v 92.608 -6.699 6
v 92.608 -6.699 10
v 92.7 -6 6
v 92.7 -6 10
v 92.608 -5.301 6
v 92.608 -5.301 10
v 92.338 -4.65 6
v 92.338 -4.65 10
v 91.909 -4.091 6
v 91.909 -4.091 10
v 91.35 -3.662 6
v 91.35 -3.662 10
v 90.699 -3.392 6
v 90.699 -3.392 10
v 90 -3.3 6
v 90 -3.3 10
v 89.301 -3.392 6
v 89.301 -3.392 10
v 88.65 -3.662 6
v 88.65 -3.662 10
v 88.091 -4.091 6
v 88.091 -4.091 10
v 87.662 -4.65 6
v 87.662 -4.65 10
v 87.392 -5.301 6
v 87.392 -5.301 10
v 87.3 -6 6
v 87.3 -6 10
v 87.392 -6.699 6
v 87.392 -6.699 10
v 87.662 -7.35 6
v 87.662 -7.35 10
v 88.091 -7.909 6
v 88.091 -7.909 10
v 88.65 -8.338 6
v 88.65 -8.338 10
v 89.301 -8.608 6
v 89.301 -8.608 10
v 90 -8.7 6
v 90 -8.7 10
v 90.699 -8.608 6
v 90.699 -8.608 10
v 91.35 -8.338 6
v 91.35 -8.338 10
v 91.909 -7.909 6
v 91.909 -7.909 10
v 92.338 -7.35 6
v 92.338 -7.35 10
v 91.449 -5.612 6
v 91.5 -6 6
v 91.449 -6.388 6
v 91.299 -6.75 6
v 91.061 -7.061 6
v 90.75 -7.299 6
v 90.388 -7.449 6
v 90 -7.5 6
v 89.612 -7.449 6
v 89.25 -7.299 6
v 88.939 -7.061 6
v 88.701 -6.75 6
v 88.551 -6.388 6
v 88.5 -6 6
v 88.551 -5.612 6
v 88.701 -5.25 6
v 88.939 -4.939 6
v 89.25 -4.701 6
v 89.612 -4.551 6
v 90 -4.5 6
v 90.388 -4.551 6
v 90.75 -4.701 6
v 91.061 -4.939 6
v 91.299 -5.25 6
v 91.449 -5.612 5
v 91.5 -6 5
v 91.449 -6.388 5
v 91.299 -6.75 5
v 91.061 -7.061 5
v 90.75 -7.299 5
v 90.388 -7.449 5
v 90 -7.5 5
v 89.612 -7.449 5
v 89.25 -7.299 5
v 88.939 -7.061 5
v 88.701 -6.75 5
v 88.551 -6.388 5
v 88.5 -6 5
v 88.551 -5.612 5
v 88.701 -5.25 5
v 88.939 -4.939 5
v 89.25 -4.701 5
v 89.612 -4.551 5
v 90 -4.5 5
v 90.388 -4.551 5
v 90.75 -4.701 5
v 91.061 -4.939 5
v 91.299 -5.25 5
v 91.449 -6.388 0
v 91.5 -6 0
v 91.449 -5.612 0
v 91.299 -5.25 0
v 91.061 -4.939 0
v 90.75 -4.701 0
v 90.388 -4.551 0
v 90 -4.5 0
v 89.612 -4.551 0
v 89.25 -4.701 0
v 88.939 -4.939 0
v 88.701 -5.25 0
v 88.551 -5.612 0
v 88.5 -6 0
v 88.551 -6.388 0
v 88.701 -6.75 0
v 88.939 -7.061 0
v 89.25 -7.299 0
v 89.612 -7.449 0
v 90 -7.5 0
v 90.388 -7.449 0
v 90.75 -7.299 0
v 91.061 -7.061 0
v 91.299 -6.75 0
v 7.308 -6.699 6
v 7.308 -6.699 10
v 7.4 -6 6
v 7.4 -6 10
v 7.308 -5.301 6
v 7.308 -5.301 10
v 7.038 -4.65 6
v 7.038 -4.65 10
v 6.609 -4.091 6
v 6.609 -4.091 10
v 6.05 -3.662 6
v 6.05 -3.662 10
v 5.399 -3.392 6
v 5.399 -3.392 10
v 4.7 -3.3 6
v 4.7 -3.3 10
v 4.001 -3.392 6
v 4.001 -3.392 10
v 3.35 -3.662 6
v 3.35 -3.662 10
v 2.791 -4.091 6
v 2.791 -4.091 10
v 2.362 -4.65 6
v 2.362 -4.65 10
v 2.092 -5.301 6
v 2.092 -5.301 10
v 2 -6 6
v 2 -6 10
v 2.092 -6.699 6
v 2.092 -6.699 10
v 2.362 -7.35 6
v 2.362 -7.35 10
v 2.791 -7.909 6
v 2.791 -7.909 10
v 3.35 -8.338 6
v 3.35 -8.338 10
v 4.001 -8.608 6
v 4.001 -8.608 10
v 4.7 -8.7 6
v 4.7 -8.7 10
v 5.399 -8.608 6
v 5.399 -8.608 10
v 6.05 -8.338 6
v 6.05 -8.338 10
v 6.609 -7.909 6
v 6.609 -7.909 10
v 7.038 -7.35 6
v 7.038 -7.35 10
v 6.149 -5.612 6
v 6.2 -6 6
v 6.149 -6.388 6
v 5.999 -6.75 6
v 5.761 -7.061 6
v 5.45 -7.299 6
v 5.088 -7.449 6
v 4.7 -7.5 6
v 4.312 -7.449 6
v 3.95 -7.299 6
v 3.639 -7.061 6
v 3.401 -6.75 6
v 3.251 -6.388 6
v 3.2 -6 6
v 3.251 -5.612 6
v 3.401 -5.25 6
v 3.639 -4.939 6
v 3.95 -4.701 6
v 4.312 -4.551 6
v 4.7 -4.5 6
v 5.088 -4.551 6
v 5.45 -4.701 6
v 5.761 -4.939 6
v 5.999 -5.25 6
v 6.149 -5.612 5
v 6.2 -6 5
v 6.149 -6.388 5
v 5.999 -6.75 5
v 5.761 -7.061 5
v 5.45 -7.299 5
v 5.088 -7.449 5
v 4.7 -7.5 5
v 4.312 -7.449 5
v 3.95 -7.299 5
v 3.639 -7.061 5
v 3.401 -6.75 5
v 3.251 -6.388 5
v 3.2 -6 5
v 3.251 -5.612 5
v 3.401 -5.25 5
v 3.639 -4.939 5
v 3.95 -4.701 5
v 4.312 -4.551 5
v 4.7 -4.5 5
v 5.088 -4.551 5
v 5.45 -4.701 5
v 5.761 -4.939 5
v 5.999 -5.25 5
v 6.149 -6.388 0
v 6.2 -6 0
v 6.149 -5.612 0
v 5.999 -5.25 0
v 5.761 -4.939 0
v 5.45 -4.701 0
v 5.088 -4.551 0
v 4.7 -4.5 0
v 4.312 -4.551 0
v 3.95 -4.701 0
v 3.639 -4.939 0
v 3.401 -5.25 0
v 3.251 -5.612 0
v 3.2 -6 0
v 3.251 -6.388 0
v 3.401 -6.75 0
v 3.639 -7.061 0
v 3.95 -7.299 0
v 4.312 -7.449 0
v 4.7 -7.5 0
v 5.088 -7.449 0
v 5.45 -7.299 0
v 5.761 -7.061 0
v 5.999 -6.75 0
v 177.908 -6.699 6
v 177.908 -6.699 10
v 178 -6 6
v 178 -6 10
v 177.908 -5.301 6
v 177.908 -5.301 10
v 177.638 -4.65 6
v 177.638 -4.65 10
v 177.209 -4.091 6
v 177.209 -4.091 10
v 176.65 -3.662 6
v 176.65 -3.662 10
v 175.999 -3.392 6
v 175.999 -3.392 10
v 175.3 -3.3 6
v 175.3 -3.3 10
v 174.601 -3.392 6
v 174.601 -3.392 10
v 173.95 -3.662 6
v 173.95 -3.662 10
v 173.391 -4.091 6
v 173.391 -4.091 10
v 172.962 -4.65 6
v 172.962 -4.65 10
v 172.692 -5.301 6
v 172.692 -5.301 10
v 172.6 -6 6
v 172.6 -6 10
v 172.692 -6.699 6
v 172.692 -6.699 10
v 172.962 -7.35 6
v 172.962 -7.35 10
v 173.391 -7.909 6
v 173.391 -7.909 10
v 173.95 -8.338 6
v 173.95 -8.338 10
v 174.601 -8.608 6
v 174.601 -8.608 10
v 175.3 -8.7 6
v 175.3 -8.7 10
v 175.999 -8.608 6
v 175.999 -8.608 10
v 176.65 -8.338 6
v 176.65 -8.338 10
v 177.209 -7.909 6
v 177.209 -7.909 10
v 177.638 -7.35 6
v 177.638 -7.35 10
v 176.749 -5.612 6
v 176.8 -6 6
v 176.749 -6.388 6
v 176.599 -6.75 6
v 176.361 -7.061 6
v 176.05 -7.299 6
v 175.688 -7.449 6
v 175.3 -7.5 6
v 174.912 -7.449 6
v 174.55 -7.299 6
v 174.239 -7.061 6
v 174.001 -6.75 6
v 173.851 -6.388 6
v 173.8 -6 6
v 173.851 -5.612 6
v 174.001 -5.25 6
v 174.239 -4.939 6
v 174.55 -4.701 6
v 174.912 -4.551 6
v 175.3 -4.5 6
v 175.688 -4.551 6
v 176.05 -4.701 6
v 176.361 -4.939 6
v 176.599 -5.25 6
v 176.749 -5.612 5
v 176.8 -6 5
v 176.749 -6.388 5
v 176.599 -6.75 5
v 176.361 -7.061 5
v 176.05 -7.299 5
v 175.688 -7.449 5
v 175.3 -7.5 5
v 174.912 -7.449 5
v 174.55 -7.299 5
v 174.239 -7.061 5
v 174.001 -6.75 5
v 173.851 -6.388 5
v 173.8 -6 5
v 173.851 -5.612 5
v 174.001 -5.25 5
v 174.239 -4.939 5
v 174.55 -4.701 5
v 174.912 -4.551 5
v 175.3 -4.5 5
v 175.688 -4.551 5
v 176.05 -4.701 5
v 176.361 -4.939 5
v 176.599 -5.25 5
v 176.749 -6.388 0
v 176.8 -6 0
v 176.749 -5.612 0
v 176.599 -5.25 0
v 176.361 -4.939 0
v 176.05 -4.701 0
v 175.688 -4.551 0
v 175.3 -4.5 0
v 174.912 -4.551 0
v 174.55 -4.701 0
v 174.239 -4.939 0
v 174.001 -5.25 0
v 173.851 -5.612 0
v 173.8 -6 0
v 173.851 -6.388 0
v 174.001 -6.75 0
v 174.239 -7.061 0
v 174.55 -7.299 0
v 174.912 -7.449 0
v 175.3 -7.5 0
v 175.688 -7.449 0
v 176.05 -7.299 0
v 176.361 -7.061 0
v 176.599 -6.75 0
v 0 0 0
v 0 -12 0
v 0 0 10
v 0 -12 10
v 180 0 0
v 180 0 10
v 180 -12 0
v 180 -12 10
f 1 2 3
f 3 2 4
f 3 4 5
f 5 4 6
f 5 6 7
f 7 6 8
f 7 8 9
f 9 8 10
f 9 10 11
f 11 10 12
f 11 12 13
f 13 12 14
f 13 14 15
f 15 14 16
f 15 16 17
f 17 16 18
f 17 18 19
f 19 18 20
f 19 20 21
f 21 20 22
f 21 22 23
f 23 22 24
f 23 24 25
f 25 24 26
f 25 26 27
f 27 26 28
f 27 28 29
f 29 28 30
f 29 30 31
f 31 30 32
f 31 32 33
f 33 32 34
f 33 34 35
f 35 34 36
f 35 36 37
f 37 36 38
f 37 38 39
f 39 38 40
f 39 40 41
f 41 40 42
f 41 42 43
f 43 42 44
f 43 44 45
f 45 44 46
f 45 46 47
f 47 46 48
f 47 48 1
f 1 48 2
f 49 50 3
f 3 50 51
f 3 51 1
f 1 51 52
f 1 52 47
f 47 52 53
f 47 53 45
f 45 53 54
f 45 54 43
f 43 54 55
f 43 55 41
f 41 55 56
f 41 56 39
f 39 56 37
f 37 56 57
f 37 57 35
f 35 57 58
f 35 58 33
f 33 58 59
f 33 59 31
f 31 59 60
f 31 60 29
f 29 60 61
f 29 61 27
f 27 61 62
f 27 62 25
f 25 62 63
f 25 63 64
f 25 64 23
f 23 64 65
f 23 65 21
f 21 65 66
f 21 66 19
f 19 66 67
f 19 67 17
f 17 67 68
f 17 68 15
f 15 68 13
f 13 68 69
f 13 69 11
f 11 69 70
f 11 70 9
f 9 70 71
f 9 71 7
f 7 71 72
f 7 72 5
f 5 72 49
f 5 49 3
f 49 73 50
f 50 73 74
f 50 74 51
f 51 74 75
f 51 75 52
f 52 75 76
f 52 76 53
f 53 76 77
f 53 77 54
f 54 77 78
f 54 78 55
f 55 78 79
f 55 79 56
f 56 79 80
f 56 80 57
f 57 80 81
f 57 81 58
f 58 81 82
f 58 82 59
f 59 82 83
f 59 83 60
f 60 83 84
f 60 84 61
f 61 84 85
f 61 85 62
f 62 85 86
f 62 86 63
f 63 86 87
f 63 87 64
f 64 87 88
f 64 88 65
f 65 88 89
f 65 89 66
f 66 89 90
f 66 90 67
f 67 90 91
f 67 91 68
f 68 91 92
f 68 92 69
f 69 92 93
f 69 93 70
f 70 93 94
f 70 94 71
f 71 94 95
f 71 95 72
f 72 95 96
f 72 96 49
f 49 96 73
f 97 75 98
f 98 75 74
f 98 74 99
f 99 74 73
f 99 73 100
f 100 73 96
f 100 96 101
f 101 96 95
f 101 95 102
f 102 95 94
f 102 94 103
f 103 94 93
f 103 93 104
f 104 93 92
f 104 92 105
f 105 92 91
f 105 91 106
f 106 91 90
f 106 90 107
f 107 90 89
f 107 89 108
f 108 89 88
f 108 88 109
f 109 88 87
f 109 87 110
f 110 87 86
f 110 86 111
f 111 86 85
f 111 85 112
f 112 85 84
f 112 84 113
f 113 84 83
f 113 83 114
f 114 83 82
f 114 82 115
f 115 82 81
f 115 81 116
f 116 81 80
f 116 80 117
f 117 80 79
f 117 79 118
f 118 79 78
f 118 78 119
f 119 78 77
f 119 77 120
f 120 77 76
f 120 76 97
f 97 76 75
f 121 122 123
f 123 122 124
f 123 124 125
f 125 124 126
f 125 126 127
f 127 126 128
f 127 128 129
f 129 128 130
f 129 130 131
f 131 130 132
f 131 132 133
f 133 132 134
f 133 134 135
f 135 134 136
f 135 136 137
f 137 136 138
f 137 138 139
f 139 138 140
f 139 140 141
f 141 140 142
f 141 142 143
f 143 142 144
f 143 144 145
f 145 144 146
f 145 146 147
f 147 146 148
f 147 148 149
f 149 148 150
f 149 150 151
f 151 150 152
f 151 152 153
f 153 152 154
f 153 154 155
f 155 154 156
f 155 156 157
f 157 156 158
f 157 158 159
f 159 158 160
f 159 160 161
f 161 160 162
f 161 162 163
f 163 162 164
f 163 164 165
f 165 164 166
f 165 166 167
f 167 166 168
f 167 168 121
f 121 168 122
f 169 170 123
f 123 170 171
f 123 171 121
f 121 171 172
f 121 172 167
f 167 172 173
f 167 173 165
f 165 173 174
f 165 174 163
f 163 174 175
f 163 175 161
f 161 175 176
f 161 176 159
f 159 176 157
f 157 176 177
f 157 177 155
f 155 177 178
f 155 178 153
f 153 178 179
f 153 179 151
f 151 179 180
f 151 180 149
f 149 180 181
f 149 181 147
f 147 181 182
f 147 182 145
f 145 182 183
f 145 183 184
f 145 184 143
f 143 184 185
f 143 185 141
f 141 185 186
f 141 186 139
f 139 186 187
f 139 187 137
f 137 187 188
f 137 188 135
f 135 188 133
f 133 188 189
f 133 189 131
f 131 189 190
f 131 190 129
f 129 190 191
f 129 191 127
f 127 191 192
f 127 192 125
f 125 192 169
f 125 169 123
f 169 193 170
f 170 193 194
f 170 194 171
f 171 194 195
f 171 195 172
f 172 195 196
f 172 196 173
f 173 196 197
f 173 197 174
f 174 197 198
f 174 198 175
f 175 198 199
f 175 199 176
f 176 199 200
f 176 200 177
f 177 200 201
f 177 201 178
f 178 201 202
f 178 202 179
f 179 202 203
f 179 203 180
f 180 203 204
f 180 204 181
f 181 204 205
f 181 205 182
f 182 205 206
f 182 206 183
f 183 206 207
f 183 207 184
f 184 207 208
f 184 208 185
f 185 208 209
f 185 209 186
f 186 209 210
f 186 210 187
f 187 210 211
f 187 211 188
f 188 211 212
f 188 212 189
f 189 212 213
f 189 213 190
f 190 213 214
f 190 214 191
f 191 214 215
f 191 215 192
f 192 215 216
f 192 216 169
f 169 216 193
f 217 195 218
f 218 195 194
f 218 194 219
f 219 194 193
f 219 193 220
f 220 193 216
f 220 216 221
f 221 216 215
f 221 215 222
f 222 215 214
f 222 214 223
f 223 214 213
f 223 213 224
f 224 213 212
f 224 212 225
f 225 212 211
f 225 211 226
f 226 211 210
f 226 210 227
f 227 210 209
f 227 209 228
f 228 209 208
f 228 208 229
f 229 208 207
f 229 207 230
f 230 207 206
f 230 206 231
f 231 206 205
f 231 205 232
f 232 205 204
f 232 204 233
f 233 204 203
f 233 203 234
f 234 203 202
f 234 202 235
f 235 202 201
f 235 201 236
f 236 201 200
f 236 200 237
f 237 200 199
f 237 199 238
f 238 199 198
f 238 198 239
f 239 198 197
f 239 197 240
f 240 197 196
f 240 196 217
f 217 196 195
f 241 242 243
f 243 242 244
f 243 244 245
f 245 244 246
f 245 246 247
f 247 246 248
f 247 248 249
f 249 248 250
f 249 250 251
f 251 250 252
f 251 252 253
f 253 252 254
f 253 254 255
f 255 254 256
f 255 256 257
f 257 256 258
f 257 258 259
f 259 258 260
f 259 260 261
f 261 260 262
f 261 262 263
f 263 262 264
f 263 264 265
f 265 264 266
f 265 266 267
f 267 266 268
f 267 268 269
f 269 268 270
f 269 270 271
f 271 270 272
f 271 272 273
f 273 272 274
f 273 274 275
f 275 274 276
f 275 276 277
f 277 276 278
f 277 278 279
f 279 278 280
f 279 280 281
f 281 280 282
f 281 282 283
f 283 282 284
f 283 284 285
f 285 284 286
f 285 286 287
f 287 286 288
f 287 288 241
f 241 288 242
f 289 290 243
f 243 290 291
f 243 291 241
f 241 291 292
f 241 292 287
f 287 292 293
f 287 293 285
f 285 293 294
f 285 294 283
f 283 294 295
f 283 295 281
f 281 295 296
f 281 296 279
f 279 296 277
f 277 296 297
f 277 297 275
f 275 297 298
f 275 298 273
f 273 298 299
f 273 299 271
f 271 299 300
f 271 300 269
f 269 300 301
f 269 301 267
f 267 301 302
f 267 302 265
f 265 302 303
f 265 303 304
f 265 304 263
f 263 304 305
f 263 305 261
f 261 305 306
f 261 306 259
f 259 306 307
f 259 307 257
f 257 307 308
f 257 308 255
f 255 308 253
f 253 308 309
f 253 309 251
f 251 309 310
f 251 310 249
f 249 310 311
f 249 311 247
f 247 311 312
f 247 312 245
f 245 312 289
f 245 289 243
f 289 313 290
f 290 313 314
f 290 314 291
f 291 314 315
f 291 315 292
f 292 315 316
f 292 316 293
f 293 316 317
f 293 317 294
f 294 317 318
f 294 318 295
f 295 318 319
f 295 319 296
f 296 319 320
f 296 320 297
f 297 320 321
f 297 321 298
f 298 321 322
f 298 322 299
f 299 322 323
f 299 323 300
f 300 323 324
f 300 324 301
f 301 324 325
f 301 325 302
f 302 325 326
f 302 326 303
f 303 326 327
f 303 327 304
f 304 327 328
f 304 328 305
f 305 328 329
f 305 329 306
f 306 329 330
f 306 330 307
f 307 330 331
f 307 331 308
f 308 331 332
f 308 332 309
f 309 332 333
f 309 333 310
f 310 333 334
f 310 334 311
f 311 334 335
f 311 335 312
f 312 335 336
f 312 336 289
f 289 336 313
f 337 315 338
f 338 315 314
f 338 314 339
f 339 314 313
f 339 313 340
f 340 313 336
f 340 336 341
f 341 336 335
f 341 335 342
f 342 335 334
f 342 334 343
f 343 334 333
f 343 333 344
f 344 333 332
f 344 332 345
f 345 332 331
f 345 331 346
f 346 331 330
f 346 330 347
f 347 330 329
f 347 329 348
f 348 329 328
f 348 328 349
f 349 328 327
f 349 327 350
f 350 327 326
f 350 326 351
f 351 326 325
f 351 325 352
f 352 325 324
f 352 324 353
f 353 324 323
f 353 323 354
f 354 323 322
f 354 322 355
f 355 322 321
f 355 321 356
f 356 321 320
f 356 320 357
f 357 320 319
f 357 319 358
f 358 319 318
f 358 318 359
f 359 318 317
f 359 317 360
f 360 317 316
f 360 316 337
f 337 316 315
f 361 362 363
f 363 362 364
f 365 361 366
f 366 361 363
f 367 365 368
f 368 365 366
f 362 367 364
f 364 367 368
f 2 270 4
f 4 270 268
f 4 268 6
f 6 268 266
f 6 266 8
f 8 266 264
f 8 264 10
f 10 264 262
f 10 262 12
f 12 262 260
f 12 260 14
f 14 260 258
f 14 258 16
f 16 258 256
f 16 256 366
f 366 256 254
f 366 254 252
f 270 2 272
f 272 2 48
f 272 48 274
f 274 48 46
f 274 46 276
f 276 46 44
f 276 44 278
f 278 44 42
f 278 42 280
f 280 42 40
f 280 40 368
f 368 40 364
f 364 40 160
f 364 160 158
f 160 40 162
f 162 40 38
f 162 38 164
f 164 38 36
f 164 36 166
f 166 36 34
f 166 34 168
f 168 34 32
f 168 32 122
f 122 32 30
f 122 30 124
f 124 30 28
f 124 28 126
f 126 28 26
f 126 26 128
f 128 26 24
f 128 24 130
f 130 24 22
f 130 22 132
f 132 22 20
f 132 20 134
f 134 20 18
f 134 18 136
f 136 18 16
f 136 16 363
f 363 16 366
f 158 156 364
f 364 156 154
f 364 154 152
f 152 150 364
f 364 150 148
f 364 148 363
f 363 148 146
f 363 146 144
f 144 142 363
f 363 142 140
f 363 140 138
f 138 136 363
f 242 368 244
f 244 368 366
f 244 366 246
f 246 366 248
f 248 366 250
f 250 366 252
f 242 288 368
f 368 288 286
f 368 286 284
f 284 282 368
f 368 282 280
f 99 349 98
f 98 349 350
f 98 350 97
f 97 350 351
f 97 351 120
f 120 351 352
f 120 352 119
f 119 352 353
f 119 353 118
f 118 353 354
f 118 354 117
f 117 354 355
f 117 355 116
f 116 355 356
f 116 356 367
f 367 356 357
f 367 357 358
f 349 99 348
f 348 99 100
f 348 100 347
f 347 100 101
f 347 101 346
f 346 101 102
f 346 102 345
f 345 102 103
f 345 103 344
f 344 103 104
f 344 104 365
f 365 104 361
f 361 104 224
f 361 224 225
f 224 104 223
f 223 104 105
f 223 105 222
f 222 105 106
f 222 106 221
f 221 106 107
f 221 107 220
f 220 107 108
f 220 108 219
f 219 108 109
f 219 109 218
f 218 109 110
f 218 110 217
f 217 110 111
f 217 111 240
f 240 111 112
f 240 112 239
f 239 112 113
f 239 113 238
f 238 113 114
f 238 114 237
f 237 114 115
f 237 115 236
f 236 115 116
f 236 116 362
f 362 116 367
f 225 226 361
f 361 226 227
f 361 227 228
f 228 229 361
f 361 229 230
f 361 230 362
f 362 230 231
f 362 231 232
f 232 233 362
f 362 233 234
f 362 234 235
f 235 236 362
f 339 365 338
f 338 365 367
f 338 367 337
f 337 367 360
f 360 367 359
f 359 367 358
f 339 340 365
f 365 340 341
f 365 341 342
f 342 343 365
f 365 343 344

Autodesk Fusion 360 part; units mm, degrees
sketch "Sketch1" plane through (0, 0, 0) normal (0, 0, 1) x (1, 0, 0)
  line L0 (0, 0) -> (180, 0)
  line L1 (180, 0) -> (180, -12)
  line L2 (180, -12) -> (0, -12)
  line L3 (0, -12) -> (0, 0)
  dimension "d16" = 180
  dimension "d17" = 12
extrude "Extrude1" add sketch "Sketch1" along normal blind 10
sketch "Sketch6" plane through (0, 0, 10) normal (0, 0, 1) x (-1, 0, 0)
  line L0 (0, 12) -> (-180, 12)
  line L1 (-180, 12) -> (-180, 0)
  line L2 (-180, 0) -> (0, 0)
  line L3 (0, 0) -> (0, 12)
  circle A0 centre (-4.7, 6) radius 1.5
  circle A1 centre (-4.7, 6) radius 2.7
  circle A2 centre (-175.3, 6) radius 1.5
  circle A3 centre (-175.3, 6) radius 2.7
  line L4 (0, 12) -> (0, 0)
  line L5 (0, 0) -> (-180, 0)
  line L6 (-180, 0) -> (-180, 12)
  circle A4 centre (-90, 6) radius 1.5
  circle A5 centre (-90, 6) radius 2.7
  dimension "d65" = 3
  dimension "d66" = 1.2
  dimension "d67" = 3
  dimension "d68" = 1.2
  dimension "d69" = 4.7
  dimension "d70" = 6
  dimension "d71" = 4.7
  dimension "d72" = 6
  dimension "d82" = 3
  dimension "d83" = 1.2
  dimension "d88" = 6
  dimension "d89" = 90
extrude "Extrude9" cut sketch "Sketch6" against normal blind 100 contours A2
extrude "Extrude10" cut sketch "Sketch6" against normal blind 4 contours A3
extrude "Extrude11" cut sketch "Sketch6" against normal blind 100 contours A0
extrude "Extrude12" cut sketch "Sketch6" against normal blind 4 contours A1
extrude "Extrude13" cut sketch "Sketch6" against normal blind 100 contours A4
extrude "Extrude14" cut sketch "Sketch6" against normal blind 4 contours A5
equation "length = 180 mm"
equation "height = 10 mm"
equation "width = 12 mm"
equation "d16 = length"
equation "d17 = width"
equation "d18 = height"
equation "extra = 100 mm"
equation "bearing_outer_radius = 2.7 mm"
equation "bearing_width = 4 mm"
equation "bearing_big_distance = 2 mm + bearing_outer_radius"
equation "bearing_small_distance = width / 2"
equation "bearing_inner_radius = 1.5 mm"
equation "d65 = bearing_inner_radius * 2"
equation "d66 = bearing_outer_radius - bearing_inner_radius"
equation "d67 = bearing_inner_radius * 2"
equation "d68 = bearing_outer_radius - bearing_inner_radius"
equation "d69 = bearing_big_distance"
equation "d70 = bearing_small_distance"
equation "d71 = bearing_big_distance"
equation "d72 = bearing_small_distance"
equation "d73 = -extra"
equation "d75 = -bearing_width"
equation "d77 = -extra"
equation "d79 = -bearing_width"
equation "bearing_main_big_distance = length / 2"
equation "d82 = bearing_inner_radius * 2"
equation "d83 = bearing_outer_radius - bearing_inner_radius"
equation "d84 = -extra"
equation "d86 = -bearing_width"
equation "d88 = bearing_small_distance"
equation "d89 = bearing_main_big_distance"
